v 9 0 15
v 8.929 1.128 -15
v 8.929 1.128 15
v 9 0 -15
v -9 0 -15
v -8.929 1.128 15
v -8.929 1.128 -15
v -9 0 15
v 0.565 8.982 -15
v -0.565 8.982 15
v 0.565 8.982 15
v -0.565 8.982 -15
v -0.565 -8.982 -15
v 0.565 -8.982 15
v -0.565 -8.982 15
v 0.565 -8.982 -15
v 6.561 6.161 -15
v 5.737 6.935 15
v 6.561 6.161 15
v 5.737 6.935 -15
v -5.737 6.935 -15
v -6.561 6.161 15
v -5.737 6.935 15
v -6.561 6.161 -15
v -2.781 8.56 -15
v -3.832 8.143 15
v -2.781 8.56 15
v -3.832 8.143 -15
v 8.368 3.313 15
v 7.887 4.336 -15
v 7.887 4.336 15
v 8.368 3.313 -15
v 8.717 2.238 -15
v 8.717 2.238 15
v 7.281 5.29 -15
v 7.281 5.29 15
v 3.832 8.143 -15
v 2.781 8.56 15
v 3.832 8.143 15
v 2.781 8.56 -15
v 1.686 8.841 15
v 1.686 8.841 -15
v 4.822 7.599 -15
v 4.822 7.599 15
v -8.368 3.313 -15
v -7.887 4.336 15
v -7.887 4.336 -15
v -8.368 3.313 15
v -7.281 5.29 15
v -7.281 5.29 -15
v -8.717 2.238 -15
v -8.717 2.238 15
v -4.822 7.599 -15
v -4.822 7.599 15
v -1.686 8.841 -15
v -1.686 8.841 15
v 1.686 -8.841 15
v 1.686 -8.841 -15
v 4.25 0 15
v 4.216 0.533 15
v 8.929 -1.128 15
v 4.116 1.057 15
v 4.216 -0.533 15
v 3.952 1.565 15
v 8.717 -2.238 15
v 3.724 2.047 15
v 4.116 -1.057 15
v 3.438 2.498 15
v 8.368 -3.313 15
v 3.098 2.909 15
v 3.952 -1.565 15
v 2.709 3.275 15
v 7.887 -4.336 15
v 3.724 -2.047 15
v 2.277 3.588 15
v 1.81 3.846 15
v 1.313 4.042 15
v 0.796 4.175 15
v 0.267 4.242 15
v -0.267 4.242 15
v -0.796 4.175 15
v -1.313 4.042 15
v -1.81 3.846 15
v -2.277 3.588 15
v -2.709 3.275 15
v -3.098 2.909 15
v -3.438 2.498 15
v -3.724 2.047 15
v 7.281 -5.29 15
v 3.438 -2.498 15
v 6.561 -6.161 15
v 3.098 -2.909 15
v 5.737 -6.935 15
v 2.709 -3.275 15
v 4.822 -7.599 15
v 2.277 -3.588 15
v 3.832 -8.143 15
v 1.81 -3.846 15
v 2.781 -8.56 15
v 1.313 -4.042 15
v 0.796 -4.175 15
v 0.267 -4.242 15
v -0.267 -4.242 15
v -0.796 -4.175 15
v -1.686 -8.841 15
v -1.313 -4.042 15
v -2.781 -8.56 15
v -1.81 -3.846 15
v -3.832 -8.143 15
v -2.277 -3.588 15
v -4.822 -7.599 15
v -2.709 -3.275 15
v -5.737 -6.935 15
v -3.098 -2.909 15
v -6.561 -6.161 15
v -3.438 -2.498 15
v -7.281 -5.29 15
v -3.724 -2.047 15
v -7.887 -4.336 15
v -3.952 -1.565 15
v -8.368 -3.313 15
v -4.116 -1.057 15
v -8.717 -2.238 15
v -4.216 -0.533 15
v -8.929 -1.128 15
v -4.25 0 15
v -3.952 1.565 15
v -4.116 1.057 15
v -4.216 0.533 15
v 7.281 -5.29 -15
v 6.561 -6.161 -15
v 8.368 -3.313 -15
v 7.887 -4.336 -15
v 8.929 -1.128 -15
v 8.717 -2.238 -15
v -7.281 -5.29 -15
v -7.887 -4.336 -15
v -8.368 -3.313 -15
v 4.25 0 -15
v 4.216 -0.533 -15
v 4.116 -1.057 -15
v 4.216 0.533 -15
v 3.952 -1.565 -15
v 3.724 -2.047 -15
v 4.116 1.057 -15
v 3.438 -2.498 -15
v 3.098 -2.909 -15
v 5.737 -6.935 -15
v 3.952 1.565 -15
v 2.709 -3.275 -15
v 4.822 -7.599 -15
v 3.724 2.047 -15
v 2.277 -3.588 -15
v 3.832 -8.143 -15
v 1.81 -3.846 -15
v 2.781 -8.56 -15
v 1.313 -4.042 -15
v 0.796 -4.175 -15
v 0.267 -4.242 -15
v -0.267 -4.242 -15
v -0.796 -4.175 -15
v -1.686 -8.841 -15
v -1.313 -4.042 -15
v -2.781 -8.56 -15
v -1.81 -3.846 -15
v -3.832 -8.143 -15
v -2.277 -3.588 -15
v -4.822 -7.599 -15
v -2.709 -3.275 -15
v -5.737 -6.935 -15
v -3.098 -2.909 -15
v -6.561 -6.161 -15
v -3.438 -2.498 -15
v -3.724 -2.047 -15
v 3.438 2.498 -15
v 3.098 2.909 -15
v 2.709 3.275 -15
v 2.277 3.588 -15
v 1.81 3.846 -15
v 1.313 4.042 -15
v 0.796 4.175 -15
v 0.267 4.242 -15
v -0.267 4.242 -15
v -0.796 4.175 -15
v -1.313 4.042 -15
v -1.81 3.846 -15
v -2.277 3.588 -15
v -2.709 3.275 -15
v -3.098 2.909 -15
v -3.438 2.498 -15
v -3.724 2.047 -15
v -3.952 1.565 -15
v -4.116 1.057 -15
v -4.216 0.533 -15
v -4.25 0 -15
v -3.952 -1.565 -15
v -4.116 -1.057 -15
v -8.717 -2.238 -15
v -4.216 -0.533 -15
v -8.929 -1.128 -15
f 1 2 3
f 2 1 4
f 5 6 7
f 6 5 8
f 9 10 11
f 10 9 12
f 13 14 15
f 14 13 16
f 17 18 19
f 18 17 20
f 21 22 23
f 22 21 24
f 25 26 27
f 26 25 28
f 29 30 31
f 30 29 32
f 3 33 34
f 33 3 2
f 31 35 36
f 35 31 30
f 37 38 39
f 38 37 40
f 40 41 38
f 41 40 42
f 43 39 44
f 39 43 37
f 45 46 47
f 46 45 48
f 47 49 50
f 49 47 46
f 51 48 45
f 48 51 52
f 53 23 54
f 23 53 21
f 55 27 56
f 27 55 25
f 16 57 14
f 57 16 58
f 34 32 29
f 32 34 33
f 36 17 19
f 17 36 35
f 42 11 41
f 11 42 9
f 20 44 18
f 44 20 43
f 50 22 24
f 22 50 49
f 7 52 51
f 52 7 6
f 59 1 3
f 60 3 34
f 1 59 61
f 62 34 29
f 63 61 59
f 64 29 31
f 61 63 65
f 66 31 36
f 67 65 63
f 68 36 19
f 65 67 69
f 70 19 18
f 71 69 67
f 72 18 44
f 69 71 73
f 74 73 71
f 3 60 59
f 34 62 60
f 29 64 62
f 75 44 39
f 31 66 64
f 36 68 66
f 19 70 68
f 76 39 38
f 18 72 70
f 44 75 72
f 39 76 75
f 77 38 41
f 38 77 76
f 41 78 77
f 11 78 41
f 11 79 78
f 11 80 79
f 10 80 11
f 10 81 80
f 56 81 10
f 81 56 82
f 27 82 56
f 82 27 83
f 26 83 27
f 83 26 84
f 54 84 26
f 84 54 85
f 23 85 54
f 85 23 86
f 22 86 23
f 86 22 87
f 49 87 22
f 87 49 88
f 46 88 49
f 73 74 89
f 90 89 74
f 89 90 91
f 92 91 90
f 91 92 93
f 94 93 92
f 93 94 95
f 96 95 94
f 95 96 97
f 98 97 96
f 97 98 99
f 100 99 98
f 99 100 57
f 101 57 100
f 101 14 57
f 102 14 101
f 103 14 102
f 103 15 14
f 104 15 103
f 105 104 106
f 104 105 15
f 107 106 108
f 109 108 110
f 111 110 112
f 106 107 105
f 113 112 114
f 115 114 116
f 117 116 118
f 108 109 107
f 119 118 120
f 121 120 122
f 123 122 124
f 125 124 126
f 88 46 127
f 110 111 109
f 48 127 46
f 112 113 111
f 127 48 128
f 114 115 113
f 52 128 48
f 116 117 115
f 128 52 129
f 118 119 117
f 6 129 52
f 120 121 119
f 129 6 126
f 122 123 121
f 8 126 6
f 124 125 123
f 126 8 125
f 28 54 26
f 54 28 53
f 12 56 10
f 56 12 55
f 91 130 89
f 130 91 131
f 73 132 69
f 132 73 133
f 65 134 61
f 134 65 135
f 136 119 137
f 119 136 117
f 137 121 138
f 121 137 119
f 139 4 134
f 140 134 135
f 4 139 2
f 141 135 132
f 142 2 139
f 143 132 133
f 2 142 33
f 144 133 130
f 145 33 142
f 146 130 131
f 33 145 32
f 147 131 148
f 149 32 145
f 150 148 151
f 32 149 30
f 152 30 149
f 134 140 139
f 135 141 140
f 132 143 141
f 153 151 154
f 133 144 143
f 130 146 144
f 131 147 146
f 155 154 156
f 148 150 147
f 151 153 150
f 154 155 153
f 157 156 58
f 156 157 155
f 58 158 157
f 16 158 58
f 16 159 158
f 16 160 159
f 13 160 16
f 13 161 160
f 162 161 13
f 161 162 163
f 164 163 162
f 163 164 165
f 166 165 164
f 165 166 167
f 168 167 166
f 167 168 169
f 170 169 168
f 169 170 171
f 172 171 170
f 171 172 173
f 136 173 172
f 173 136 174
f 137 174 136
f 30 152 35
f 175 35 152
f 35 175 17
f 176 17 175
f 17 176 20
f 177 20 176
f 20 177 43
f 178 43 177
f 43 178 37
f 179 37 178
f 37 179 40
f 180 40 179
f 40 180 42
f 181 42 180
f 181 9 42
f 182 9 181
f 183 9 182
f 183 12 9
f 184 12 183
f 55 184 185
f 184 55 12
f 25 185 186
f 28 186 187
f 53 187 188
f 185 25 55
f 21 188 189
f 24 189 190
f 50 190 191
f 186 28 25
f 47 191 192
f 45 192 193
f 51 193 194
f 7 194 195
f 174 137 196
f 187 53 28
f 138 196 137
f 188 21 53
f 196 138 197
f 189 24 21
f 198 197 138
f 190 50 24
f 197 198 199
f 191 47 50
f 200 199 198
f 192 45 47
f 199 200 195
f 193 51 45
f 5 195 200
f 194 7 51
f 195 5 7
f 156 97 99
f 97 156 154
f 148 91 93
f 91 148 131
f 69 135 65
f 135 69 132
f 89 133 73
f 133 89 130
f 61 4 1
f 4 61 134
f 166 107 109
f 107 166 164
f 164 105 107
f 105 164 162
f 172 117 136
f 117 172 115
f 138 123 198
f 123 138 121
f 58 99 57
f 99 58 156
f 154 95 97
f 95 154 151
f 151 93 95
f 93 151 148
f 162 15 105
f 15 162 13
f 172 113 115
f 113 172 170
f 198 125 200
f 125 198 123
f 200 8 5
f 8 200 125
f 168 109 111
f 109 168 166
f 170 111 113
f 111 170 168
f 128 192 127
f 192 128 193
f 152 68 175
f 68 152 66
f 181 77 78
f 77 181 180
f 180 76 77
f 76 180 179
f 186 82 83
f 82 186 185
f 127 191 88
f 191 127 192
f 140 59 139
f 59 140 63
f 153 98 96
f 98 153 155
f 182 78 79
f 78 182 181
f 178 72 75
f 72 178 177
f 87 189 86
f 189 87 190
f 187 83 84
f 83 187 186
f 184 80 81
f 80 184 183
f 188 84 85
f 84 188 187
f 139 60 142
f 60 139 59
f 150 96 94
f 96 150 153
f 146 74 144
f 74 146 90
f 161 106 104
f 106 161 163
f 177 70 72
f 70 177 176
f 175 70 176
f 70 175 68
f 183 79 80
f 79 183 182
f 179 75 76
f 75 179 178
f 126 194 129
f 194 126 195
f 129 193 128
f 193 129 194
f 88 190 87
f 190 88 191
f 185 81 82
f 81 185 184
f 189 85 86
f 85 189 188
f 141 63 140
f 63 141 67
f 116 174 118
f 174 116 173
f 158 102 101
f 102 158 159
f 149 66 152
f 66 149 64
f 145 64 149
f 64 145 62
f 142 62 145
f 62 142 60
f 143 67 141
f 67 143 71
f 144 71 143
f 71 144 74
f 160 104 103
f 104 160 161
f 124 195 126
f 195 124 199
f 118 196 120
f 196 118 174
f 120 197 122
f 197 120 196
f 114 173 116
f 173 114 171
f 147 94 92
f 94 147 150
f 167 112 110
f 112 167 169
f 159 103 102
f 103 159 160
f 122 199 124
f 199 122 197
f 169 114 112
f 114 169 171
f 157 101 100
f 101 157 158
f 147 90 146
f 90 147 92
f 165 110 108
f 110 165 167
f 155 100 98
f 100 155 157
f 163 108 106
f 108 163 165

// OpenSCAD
$fn = 50;


difference() {
	union() {
		translate(v = [0, 0, -15.0000000000]) {
			cylinder(h = 30, r = 9.0000000000);
		}
	}
	union() {
		translate(v = [0, 0, -100.0000000000]) {
			cylinder(h = 200, r = 4.2500000000);
		}
	}
}
